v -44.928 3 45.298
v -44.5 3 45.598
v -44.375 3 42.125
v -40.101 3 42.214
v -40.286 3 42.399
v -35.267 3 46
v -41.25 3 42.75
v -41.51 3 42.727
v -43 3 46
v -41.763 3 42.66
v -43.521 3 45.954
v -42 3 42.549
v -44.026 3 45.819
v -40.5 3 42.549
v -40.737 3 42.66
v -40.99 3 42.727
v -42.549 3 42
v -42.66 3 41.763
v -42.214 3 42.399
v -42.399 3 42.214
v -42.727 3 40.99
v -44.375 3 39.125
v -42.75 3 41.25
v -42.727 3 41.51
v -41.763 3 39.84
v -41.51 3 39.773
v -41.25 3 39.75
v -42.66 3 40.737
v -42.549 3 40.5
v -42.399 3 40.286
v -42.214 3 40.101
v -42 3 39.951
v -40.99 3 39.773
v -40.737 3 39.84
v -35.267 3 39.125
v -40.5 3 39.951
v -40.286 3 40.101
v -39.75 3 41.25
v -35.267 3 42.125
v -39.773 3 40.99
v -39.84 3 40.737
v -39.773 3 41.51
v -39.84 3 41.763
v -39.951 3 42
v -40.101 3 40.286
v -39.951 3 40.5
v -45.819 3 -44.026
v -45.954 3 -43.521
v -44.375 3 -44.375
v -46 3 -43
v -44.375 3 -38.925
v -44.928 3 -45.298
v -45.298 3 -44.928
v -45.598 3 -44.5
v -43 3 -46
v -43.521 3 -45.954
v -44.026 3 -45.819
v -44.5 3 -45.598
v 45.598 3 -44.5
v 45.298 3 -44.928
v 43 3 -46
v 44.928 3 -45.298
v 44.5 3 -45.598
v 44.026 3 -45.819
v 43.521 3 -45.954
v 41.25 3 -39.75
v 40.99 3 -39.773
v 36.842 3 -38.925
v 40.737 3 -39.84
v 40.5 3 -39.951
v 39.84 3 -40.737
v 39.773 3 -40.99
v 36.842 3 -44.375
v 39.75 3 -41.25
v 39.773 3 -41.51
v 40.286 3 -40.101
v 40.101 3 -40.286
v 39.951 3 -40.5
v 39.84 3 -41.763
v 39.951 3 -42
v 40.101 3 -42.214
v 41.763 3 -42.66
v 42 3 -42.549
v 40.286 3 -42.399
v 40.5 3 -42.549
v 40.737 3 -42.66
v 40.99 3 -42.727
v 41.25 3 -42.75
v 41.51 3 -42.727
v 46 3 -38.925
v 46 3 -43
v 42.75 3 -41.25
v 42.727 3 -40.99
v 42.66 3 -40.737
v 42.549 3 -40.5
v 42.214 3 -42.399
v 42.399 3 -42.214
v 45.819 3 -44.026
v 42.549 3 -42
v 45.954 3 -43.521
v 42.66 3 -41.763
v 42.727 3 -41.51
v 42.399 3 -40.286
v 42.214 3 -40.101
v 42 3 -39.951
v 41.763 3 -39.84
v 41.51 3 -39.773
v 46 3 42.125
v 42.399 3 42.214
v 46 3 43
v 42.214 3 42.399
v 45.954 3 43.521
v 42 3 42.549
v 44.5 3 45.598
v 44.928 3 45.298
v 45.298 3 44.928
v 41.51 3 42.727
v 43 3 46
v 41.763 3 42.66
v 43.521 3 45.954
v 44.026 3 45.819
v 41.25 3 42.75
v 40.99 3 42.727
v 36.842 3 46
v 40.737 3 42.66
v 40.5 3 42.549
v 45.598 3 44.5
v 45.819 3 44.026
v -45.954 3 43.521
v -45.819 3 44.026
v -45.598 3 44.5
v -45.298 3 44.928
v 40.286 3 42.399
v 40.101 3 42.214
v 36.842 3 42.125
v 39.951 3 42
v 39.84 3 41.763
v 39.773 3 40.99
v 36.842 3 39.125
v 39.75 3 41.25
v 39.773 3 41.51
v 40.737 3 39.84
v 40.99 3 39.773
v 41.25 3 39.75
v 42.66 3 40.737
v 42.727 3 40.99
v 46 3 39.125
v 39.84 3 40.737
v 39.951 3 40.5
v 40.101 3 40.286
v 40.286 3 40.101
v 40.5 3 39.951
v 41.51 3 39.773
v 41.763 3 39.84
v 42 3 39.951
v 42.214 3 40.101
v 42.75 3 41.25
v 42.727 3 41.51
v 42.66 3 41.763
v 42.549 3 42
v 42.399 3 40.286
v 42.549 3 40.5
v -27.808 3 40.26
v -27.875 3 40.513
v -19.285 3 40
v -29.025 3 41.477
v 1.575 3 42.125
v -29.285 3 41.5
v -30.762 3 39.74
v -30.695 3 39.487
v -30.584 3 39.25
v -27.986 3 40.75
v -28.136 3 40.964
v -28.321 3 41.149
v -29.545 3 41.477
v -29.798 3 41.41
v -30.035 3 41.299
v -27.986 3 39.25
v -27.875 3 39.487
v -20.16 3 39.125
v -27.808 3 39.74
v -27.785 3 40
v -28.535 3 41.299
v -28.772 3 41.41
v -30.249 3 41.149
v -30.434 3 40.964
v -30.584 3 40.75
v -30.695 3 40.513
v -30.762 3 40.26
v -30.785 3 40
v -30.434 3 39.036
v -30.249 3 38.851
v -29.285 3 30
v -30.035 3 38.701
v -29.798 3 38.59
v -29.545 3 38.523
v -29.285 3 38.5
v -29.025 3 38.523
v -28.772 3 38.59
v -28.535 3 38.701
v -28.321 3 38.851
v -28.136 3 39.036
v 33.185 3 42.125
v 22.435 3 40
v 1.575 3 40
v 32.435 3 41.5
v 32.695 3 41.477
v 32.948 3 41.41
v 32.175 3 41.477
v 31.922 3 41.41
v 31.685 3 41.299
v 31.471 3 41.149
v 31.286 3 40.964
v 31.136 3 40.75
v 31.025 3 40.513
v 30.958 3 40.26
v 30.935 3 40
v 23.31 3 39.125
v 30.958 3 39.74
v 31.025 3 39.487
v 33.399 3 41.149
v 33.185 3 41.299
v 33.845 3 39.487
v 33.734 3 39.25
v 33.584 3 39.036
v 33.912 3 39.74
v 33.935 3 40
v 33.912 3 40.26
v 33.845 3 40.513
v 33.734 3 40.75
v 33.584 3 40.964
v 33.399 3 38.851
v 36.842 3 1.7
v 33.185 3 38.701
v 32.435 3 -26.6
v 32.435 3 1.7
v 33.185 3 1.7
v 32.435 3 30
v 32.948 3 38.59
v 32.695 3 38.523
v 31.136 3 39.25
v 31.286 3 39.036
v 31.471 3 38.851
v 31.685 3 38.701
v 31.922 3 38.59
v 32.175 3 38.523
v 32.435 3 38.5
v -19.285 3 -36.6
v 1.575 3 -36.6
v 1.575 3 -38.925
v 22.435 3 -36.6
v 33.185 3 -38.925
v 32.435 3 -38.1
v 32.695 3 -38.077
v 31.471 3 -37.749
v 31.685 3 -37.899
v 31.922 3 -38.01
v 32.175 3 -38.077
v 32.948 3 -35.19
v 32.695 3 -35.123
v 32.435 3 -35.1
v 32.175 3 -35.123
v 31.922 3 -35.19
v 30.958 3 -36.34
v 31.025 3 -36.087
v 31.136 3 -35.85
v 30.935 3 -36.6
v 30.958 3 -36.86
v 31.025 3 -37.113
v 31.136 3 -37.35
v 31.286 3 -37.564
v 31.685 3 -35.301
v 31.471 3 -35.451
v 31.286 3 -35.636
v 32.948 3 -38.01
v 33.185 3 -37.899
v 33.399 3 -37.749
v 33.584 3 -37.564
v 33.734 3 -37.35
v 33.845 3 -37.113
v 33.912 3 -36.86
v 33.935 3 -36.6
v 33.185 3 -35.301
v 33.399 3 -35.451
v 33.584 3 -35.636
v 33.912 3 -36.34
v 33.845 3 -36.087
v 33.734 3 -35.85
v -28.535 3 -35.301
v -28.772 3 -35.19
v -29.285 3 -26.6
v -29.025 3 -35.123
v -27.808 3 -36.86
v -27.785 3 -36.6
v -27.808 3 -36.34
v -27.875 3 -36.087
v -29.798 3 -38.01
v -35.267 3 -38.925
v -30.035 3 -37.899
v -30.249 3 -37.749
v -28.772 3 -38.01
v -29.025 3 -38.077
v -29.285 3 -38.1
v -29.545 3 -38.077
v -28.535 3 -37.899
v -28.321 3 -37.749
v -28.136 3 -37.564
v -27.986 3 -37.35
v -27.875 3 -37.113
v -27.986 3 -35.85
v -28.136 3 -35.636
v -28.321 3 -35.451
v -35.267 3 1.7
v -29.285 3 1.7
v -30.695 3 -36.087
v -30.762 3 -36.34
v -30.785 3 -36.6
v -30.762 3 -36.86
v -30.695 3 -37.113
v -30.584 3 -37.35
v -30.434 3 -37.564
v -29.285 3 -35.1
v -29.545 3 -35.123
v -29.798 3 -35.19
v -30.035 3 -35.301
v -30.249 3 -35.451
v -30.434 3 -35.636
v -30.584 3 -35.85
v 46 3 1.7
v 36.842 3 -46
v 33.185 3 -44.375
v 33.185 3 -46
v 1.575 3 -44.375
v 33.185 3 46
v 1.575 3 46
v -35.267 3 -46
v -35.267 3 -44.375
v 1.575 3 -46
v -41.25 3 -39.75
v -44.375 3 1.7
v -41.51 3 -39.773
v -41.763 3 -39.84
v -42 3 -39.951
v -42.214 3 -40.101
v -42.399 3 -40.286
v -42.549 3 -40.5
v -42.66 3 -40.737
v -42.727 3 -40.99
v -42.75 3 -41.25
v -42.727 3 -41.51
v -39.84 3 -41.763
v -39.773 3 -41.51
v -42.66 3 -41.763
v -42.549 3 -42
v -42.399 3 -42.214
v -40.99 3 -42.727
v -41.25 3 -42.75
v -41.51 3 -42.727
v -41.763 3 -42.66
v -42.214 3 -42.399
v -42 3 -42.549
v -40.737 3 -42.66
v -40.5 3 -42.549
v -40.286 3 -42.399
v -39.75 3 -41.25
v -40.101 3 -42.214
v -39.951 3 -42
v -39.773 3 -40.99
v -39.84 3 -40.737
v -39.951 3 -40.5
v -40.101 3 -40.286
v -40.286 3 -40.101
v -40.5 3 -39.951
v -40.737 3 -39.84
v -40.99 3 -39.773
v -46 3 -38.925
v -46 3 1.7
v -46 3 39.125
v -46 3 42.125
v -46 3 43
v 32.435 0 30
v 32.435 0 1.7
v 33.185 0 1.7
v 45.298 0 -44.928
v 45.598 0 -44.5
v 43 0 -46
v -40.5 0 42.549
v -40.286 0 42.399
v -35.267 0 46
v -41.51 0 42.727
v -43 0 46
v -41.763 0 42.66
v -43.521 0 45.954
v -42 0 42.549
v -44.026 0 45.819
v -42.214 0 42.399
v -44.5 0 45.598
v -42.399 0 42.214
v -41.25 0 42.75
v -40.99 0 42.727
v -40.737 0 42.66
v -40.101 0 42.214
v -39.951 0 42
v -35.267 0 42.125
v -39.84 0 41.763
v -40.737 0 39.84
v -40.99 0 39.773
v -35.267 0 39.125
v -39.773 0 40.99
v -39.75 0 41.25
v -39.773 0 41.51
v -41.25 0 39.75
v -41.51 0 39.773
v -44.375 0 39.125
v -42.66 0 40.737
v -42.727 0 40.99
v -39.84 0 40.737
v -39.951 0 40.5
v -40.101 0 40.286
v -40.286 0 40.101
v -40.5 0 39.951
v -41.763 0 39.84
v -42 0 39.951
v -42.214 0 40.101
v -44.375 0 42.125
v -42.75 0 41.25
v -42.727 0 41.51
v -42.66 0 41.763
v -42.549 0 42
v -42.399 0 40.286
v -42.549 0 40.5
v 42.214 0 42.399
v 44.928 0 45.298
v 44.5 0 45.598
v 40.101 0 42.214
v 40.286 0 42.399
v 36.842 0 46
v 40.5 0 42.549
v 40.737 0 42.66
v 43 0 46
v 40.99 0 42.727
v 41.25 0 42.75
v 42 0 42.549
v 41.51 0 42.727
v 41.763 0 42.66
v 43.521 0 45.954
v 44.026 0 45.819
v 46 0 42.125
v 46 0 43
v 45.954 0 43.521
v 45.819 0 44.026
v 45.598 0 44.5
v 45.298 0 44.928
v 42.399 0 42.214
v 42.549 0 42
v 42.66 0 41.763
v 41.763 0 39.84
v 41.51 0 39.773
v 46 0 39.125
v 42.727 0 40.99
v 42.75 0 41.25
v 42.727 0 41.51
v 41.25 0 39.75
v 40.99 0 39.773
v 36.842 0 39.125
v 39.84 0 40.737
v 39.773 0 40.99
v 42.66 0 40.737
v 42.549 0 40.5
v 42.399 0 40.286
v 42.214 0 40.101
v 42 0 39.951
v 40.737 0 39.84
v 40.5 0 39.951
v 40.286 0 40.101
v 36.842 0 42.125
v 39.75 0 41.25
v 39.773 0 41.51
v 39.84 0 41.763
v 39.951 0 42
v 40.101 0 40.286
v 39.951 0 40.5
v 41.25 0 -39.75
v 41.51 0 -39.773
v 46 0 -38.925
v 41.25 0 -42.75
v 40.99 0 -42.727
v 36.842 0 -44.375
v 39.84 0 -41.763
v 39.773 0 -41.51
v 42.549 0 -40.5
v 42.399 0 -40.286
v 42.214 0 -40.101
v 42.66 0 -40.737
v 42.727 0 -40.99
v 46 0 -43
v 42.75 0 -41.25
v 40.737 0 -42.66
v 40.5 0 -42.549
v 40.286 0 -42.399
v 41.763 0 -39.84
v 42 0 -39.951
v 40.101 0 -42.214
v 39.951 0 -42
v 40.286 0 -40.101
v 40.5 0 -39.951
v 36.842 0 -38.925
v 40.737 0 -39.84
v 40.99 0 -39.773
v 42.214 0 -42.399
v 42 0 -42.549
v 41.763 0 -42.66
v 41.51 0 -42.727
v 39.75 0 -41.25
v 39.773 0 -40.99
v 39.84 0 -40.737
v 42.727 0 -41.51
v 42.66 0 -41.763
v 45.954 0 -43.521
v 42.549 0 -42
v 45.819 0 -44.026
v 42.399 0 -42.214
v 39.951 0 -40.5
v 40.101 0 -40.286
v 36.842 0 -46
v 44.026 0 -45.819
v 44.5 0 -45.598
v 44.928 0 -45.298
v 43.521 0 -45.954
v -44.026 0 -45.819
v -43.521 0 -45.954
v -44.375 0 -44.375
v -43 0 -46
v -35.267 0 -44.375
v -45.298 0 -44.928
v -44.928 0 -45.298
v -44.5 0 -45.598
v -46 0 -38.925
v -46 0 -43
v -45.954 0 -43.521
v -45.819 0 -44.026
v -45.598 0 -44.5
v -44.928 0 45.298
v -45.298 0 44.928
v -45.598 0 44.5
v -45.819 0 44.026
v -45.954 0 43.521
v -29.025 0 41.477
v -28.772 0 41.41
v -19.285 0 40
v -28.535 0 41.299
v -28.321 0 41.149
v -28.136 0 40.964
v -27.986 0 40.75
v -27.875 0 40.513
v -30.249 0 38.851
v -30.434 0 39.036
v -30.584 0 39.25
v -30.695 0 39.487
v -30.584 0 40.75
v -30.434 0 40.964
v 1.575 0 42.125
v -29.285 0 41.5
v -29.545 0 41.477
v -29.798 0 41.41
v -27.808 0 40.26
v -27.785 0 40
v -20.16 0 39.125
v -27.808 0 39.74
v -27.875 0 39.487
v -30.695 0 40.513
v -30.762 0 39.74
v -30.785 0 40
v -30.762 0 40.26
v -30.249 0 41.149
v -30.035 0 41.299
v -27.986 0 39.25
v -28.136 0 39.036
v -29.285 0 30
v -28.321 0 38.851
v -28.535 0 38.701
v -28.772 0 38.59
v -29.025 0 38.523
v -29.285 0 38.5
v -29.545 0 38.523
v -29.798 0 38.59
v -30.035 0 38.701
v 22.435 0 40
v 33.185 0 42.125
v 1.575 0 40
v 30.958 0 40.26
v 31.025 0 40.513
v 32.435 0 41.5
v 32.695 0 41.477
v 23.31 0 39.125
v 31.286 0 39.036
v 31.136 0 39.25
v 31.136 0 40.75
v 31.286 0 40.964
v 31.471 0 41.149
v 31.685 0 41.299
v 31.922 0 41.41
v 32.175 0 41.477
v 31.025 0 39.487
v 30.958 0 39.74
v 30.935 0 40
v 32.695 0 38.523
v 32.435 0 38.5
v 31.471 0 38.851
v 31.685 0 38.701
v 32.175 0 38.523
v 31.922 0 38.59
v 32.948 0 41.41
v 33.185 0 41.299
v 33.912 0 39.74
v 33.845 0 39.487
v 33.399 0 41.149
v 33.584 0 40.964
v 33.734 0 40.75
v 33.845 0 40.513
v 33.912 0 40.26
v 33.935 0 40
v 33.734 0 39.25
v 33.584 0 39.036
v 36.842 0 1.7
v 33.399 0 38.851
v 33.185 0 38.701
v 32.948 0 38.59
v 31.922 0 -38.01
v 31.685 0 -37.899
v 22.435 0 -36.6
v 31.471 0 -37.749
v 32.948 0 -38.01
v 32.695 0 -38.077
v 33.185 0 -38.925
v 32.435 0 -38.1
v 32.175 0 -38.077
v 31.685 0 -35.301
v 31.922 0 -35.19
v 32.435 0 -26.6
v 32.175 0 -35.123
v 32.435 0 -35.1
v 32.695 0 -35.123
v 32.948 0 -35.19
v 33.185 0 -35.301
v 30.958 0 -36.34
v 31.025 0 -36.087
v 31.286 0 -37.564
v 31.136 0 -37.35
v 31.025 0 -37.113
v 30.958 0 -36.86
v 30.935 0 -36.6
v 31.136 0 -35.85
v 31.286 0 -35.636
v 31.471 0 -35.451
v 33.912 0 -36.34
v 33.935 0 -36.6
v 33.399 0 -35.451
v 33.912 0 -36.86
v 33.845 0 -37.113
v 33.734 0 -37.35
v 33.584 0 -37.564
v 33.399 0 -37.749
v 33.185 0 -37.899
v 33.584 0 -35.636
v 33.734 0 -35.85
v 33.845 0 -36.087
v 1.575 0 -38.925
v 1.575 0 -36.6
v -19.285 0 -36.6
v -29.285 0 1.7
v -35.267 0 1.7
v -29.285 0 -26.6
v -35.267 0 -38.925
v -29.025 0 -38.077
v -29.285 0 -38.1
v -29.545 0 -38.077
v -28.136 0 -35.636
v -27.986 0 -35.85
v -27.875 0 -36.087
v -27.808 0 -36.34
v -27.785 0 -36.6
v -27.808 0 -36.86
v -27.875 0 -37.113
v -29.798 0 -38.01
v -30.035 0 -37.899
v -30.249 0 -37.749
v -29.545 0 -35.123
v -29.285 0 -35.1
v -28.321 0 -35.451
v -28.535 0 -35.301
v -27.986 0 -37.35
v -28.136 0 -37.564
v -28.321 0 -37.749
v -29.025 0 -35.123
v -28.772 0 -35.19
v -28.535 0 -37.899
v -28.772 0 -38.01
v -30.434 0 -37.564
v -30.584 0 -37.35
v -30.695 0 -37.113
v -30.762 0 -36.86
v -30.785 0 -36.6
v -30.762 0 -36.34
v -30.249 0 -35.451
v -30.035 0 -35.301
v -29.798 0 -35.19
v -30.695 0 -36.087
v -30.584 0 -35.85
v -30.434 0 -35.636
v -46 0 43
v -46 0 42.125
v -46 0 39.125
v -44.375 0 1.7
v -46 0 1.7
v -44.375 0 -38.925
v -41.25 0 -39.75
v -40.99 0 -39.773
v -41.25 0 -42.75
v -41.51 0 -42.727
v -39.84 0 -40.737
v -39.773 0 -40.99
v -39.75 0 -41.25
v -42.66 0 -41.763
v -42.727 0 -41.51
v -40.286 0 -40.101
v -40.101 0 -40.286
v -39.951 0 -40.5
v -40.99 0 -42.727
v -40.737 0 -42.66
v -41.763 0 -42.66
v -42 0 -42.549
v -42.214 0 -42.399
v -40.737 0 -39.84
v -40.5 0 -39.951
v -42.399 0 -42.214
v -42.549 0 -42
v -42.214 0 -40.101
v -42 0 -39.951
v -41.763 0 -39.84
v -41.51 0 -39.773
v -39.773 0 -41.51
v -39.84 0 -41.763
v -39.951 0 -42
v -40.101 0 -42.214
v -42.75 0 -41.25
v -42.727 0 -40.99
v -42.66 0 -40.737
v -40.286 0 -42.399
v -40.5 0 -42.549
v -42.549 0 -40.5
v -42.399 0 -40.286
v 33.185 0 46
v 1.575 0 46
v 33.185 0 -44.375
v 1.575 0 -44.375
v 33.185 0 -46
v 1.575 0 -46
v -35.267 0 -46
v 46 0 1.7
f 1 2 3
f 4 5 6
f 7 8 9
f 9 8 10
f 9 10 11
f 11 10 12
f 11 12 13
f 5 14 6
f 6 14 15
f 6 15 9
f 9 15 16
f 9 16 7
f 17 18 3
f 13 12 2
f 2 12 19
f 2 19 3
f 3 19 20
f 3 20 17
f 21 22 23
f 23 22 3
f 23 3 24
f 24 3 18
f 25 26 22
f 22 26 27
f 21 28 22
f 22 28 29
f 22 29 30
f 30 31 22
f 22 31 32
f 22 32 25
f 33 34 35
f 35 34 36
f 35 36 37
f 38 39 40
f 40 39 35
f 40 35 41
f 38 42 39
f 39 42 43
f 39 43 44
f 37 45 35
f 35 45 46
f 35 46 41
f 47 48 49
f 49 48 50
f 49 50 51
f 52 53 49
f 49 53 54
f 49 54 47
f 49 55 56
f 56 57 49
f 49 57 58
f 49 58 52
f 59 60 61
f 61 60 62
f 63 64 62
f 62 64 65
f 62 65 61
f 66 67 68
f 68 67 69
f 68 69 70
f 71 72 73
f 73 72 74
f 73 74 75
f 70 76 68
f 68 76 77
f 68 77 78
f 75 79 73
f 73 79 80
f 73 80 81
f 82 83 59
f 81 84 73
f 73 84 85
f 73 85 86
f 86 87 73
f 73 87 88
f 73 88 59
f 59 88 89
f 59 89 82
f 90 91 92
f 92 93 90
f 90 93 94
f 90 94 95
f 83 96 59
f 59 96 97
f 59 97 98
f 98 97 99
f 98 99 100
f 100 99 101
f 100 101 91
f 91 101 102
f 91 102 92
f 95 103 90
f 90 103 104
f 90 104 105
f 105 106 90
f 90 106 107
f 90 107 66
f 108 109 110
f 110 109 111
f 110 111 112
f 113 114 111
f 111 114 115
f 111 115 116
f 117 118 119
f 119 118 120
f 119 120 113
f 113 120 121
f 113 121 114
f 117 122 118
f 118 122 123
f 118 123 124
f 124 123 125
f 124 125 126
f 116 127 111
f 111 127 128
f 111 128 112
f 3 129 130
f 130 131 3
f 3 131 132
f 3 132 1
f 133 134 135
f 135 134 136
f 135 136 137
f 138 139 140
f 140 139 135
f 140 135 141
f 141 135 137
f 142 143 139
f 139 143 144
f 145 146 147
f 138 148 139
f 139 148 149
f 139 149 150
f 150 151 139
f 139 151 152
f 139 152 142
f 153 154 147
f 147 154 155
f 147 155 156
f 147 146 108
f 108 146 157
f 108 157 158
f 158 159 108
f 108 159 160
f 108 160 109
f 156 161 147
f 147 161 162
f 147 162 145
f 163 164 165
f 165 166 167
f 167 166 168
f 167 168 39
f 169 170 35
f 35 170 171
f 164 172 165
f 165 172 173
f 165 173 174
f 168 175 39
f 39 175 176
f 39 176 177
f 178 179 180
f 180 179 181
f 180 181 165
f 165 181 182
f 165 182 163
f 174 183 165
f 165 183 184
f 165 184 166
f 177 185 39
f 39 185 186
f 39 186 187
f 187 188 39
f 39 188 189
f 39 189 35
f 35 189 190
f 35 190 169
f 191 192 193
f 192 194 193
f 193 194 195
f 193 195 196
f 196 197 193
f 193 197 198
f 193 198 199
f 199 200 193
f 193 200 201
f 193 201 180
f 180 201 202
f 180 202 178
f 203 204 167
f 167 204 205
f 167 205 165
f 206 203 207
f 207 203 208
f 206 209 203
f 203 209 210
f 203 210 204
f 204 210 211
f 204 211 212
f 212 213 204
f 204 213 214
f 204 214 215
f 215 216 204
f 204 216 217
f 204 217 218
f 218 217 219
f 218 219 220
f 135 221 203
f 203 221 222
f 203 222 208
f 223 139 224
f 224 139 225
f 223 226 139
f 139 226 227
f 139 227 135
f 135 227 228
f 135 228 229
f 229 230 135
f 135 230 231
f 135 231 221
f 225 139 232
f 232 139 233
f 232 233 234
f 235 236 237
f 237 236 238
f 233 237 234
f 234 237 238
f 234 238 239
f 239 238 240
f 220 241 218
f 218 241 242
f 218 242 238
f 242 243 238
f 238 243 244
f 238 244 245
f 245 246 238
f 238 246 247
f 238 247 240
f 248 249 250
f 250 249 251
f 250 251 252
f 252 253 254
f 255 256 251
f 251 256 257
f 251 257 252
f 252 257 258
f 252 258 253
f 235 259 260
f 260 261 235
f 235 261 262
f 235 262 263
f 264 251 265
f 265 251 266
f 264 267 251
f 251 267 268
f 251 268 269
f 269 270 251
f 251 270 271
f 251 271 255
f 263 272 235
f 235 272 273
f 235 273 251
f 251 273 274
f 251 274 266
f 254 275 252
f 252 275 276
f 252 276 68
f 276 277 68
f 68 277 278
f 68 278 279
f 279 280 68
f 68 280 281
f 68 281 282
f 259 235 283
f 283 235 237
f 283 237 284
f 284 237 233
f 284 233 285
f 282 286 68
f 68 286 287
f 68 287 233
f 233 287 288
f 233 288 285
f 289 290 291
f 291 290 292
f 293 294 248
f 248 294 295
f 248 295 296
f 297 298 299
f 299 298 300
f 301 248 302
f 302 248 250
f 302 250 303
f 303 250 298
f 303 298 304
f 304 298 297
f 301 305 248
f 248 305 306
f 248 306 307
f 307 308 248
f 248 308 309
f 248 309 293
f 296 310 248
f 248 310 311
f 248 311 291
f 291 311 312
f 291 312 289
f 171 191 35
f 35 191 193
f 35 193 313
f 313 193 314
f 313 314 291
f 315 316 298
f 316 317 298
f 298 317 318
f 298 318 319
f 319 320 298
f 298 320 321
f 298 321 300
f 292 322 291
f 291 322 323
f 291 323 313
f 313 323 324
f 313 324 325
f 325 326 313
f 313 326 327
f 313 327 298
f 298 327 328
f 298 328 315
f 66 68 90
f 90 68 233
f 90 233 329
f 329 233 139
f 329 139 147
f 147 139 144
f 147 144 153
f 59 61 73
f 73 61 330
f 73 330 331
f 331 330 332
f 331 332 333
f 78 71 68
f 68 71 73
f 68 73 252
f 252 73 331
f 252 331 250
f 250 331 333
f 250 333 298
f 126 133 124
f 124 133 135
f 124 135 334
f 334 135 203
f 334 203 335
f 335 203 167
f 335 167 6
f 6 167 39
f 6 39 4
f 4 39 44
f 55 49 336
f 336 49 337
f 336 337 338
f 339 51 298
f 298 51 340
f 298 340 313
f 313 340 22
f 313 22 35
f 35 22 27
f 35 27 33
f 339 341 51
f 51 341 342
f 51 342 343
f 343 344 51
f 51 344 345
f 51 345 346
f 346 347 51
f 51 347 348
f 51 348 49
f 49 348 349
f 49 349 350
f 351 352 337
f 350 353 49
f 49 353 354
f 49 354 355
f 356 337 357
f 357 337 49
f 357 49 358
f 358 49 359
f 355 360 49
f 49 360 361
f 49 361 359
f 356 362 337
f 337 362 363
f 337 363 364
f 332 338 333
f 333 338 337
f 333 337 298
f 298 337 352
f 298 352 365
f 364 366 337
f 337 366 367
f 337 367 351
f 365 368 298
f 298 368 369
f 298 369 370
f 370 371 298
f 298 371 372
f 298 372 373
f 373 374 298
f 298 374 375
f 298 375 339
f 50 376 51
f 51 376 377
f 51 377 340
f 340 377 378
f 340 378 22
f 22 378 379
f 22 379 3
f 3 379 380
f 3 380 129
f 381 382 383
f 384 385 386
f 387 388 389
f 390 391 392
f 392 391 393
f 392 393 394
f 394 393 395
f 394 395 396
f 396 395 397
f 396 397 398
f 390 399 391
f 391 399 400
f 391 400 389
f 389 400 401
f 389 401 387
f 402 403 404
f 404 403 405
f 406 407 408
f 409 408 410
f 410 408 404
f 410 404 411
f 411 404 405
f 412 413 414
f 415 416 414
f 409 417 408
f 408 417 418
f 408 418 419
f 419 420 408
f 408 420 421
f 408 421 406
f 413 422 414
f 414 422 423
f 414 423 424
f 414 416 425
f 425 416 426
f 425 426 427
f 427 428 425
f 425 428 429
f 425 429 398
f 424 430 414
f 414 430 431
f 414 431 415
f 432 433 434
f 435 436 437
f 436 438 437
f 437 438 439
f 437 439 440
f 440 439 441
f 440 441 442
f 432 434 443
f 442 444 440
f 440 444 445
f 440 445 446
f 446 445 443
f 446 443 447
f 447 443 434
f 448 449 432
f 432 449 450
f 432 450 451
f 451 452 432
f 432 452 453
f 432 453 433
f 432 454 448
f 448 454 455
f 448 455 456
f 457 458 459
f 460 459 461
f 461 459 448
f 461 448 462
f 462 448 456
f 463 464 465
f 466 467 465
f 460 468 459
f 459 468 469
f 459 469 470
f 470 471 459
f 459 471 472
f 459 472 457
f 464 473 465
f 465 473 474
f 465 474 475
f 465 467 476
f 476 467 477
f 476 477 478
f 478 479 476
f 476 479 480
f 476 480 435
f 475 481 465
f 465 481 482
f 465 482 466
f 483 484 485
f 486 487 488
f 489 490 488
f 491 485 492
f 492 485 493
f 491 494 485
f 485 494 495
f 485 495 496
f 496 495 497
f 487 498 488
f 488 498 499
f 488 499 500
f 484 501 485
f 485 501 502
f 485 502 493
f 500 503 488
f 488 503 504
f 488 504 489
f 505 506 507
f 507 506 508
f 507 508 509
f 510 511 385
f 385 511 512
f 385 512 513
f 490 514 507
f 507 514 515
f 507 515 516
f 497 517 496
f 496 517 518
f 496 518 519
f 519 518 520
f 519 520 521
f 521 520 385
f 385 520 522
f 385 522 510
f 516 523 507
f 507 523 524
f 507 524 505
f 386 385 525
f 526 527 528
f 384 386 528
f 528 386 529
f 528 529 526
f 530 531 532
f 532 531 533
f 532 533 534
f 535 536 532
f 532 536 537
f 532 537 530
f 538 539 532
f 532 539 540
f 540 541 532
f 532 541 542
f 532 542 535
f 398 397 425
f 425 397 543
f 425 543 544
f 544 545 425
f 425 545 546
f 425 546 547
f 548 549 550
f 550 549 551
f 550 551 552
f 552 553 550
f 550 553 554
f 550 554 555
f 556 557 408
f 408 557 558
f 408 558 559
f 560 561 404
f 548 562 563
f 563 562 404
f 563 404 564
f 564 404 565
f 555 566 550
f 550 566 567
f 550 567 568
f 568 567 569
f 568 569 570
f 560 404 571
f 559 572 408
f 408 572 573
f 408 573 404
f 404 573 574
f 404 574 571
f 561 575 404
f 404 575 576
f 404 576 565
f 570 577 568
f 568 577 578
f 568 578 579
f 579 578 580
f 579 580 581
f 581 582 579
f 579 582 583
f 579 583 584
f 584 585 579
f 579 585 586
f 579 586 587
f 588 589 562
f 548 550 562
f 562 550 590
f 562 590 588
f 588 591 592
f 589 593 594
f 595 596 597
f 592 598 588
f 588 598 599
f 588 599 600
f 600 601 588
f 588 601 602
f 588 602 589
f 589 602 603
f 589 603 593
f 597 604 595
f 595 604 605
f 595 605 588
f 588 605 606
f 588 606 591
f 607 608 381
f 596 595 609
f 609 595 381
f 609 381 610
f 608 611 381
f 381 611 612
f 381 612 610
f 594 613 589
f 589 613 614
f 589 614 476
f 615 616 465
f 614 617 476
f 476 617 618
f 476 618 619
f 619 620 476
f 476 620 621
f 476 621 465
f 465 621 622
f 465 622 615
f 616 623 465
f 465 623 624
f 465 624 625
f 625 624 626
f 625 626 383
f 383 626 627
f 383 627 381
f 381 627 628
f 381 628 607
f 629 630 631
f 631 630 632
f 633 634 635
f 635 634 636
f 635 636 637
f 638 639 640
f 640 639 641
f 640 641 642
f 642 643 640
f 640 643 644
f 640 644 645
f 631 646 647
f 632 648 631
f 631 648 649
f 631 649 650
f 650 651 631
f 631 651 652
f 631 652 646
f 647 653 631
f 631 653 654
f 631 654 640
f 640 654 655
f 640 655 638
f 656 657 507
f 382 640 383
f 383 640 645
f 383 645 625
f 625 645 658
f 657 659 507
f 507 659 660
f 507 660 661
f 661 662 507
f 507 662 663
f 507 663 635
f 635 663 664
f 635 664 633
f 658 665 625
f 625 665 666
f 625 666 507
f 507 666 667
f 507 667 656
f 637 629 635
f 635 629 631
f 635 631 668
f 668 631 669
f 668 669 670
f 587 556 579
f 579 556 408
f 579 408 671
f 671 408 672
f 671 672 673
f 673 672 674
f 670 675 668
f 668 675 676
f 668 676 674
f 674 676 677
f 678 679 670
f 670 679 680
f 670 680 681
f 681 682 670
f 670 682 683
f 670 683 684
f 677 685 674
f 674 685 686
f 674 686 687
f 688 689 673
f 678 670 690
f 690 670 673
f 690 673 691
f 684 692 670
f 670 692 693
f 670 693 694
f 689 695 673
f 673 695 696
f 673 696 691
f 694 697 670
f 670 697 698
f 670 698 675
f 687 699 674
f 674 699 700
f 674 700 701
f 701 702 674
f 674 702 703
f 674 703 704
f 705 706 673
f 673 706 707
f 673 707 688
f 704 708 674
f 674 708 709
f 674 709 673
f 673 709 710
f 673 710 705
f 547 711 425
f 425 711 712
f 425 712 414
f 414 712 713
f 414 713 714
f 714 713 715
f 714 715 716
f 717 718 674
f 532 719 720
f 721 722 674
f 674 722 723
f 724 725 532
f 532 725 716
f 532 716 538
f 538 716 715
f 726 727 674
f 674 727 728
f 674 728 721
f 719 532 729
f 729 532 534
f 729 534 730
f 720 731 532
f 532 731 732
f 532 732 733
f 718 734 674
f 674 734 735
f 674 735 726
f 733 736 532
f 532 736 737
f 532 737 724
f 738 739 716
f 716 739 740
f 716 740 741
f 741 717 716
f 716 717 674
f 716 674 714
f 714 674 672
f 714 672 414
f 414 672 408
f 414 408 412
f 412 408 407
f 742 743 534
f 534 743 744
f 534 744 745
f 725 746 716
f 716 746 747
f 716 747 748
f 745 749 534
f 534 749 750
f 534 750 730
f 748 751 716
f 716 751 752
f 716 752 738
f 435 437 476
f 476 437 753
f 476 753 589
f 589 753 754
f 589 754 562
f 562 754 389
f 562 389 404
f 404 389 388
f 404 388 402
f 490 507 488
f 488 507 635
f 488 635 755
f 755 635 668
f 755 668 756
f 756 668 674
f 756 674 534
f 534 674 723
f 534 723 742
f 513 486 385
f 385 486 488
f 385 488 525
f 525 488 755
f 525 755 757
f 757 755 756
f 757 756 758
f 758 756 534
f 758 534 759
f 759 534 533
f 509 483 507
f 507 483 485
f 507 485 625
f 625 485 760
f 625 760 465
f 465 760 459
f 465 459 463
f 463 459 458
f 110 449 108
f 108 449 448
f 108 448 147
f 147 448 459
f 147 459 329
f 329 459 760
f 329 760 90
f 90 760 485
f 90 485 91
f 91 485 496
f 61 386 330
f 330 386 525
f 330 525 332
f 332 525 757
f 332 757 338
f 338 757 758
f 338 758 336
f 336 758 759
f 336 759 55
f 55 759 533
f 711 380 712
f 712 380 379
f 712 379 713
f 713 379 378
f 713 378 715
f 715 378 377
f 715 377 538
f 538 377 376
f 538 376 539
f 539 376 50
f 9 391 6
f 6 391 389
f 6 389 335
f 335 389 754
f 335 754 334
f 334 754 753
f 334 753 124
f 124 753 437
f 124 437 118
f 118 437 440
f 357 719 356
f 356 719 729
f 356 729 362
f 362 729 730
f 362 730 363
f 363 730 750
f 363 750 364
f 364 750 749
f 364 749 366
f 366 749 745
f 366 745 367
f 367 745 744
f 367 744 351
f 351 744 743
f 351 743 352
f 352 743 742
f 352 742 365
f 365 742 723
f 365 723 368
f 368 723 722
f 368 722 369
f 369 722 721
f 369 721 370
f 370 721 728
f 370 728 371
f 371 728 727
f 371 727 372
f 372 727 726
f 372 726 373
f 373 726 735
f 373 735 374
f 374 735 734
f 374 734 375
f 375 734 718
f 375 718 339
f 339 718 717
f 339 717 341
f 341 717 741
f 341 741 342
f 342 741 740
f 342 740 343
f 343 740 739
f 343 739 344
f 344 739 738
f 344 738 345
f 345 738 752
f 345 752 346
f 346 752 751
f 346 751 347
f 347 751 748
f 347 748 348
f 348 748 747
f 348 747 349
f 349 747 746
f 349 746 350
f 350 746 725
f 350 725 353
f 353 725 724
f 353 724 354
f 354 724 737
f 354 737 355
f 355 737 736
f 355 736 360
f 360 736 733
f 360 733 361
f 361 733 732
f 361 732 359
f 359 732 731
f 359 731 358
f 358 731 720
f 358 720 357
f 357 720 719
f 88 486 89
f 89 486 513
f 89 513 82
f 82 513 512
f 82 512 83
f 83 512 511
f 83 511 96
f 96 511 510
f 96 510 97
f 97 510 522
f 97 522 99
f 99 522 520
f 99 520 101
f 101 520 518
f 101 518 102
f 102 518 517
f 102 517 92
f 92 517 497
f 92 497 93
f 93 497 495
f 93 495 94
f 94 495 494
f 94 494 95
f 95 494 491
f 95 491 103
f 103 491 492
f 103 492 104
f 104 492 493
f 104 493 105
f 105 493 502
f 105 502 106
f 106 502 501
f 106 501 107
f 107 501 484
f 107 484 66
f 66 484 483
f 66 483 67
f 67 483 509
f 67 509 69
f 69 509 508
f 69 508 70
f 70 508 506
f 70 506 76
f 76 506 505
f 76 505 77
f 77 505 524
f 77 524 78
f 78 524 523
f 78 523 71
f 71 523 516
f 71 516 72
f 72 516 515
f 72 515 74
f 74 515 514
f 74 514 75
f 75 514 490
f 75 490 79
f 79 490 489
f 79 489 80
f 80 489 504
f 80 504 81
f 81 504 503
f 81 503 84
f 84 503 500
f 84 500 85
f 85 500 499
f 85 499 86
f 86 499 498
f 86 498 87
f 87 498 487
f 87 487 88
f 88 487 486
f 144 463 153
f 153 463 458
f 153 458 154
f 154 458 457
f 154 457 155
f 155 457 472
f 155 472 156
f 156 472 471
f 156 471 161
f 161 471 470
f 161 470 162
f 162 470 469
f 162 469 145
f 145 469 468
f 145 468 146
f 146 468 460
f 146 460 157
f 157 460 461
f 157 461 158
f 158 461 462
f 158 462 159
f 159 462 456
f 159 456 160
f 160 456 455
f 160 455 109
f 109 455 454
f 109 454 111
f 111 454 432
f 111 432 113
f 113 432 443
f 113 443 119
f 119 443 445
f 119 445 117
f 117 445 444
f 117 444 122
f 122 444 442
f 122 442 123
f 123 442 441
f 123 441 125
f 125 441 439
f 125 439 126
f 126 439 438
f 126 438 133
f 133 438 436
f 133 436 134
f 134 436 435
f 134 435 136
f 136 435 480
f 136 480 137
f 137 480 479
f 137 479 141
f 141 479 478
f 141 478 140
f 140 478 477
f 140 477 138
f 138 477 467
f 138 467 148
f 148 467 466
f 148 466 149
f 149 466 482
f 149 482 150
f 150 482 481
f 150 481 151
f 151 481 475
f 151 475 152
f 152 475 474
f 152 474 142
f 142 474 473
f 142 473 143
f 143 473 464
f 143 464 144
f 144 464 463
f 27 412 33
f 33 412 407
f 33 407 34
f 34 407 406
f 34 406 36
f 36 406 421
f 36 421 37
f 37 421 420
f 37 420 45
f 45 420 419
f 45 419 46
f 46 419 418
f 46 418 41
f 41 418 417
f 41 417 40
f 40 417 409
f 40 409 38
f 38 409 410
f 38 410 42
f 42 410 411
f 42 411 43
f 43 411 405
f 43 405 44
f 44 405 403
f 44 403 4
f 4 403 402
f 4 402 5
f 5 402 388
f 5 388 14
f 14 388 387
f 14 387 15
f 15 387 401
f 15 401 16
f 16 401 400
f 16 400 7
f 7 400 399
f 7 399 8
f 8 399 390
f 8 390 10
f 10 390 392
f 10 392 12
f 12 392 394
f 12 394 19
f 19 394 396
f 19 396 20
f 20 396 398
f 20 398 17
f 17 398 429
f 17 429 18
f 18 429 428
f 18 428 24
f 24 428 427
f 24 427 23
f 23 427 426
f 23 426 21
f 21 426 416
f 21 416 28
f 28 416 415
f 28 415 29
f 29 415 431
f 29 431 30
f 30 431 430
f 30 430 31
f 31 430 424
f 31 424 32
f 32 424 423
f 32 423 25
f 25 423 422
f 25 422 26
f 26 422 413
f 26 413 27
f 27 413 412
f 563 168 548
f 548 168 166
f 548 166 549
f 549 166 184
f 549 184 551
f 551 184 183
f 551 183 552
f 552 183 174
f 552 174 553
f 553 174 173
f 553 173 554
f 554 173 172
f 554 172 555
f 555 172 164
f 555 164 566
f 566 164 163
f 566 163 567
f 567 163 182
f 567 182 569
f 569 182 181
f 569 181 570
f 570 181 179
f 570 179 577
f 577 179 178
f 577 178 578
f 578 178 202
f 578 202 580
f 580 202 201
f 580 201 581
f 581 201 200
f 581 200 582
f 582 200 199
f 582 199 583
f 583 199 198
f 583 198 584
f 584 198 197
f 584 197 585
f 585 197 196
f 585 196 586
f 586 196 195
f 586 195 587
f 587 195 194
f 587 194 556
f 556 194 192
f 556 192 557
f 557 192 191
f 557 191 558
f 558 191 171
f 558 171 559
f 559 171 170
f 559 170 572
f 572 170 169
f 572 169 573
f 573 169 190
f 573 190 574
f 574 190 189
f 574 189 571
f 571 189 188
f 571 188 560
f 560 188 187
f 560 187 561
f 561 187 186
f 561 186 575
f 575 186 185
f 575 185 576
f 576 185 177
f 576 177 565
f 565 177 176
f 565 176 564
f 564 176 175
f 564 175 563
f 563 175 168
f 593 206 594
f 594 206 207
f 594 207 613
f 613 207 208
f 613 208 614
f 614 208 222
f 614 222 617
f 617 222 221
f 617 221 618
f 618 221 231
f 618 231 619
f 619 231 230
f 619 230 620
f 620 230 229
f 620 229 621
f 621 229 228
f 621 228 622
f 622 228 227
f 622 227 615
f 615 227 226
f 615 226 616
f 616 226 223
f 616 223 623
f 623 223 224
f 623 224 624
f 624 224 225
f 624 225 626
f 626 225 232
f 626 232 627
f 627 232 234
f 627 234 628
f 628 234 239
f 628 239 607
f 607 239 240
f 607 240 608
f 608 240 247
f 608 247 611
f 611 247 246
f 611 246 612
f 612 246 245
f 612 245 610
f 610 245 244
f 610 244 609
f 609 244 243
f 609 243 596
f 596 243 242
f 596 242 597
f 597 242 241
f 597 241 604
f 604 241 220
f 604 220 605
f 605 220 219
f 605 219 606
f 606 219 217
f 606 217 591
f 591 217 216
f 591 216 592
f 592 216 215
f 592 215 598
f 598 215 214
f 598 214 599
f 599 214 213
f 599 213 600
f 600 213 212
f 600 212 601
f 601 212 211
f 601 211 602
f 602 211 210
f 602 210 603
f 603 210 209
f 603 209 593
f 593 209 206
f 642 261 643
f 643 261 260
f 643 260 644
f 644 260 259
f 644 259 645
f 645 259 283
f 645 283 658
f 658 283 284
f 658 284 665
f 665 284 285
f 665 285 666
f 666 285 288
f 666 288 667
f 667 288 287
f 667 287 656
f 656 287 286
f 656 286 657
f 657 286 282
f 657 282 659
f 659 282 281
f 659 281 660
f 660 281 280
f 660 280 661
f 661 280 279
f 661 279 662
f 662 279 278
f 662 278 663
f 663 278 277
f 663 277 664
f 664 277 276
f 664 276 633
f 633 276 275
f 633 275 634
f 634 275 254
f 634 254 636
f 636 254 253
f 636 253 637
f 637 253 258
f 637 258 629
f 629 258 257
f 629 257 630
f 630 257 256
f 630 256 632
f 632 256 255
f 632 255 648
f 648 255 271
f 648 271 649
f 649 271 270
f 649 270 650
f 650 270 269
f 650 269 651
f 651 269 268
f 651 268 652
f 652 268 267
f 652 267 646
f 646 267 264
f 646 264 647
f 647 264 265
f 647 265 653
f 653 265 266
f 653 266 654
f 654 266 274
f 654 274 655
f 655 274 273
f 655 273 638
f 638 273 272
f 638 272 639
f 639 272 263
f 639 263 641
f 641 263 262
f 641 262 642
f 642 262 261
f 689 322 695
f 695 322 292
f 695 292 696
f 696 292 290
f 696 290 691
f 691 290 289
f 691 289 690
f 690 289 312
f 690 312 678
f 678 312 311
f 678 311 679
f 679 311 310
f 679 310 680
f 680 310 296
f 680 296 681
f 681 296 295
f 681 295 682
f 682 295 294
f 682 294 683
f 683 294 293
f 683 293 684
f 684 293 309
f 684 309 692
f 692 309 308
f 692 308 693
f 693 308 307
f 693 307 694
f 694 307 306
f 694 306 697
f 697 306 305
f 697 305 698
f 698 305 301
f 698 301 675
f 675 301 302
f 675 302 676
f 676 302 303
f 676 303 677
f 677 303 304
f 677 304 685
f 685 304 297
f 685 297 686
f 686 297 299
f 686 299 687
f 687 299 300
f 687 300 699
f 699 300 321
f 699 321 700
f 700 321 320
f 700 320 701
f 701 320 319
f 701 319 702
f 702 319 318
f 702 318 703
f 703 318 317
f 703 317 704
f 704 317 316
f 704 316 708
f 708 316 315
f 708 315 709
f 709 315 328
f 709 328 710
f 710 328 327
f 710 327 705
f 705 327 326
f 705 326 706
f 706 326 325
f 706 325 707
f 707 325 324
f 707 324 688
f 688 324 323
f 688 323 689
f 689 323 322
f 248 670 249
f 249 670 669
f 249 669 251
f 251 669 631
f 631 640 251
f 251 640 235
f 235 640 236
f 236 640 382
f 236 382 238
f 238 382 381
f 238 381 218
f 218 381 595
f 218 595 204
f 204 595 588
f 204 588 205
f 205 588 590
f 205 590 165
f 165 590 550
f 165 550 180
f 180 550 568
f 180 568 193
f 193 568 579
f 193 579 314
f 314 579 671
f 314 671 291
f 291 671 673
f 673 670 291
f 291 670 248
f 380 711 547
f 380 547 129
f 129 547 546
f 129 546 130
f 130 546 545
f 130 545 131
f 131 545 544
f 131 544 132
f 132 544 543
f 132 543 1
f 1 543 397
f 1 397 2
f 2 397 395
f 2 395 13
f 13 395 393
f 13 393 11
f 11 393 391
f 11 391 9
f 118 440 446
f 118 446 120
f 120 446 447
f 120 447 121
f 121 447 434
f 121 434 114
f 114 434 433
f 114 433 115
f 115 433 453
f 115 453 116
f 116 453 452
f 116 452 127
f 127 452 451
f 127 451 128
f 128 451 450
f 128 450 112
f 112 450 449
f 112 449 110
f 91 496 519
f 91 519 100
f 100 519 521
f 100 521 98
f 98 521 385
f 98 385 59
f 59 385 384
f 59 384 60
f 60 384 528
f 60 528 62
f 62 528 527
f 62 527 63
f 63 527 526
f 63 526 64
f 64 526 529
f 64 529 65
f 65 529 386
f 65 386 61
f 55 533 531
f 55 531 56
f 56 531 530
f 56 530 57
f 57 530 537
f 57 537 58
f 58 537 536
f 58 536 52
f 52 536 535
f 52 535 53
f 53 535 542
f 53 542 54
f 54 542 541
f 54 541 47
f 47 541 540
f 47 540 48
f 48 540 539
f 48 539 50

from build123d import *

# Parameters (mm, degrees)
SKETCH_1_R      = 1.5
EXTRUDE_1_DEPTH = 3


with BuildPart() as part:
    # 草圖1 → 填料-伸長1 (new body)
    with BuildSketch(Plane(origin=(0, 3, 0), x_dir=(1, 0, 0), z_dir=(0, 1, 0))):
        with BuildLine():
            Line((-46, 43), (-46, -43))
            ThreePointArc((-46, -43), (-45.121320344, -45.121320344), (-43, -46))
            Line((-43, -46), (43, -46))
            ThreePointArc((43, -46), (45.121320344, -45.121320344), (46, -43))
            Line((46, -43), (46, 43))
            ThreePointArc((46, 43), (45.121320344, 45.121320344), (43, 46))
            Line((43, 46), (-43, 46))
            ThreePointArc((-43, 46), (-45.121320344, 45.121320344), (-46, 43))
        make_face()
        with Locations((-29.285, 36.6)):
            Circle(SKETCH_1_R, mode=Mode.SUBTRACT)
        with Locations((32.435, 36.6)):
            Circle(SKETCH_1_R, mode=Mode.SUBTRACT)
        with Locations((32.435, -40)):
            Circle(SKETCH_1_R, mode=Mode.SUBTRACT)
        with Locations((-29.285, -40)):
            Circle(SKETCH_1_R, mode=Mode.SUBTRACT)
        with Locations((41.25, -41.25)):
            Circle(SKETCH_1_R, mode=Mode.SUBTRACT)
        with Locations((-41.25, 41.25)):
            Circle(SKETCH_1_R, mode=Mode.SUBTRACT)
        with Locations((41.25, 41.25)):
            Circle(SKETCH_1_R, mode=Mode.SUBTRACT)
        with Locations((-41.25, -41.25)):
            Circle(SKETCH_1_R, mode=Mode.SUBTRACT)
        Polygon((-19.285, 36.6), (22.435, 36.6), (32.435, 26.6), (32.435, -30), (22.435, -40), (-19.285, -40), (-29.285, -30), (-29.285, 26.6), align=None, mode=Mode.SUBTRACT)
    extrude(amount=-EXTRUDE_1_DEPTH)


solid = part.part
